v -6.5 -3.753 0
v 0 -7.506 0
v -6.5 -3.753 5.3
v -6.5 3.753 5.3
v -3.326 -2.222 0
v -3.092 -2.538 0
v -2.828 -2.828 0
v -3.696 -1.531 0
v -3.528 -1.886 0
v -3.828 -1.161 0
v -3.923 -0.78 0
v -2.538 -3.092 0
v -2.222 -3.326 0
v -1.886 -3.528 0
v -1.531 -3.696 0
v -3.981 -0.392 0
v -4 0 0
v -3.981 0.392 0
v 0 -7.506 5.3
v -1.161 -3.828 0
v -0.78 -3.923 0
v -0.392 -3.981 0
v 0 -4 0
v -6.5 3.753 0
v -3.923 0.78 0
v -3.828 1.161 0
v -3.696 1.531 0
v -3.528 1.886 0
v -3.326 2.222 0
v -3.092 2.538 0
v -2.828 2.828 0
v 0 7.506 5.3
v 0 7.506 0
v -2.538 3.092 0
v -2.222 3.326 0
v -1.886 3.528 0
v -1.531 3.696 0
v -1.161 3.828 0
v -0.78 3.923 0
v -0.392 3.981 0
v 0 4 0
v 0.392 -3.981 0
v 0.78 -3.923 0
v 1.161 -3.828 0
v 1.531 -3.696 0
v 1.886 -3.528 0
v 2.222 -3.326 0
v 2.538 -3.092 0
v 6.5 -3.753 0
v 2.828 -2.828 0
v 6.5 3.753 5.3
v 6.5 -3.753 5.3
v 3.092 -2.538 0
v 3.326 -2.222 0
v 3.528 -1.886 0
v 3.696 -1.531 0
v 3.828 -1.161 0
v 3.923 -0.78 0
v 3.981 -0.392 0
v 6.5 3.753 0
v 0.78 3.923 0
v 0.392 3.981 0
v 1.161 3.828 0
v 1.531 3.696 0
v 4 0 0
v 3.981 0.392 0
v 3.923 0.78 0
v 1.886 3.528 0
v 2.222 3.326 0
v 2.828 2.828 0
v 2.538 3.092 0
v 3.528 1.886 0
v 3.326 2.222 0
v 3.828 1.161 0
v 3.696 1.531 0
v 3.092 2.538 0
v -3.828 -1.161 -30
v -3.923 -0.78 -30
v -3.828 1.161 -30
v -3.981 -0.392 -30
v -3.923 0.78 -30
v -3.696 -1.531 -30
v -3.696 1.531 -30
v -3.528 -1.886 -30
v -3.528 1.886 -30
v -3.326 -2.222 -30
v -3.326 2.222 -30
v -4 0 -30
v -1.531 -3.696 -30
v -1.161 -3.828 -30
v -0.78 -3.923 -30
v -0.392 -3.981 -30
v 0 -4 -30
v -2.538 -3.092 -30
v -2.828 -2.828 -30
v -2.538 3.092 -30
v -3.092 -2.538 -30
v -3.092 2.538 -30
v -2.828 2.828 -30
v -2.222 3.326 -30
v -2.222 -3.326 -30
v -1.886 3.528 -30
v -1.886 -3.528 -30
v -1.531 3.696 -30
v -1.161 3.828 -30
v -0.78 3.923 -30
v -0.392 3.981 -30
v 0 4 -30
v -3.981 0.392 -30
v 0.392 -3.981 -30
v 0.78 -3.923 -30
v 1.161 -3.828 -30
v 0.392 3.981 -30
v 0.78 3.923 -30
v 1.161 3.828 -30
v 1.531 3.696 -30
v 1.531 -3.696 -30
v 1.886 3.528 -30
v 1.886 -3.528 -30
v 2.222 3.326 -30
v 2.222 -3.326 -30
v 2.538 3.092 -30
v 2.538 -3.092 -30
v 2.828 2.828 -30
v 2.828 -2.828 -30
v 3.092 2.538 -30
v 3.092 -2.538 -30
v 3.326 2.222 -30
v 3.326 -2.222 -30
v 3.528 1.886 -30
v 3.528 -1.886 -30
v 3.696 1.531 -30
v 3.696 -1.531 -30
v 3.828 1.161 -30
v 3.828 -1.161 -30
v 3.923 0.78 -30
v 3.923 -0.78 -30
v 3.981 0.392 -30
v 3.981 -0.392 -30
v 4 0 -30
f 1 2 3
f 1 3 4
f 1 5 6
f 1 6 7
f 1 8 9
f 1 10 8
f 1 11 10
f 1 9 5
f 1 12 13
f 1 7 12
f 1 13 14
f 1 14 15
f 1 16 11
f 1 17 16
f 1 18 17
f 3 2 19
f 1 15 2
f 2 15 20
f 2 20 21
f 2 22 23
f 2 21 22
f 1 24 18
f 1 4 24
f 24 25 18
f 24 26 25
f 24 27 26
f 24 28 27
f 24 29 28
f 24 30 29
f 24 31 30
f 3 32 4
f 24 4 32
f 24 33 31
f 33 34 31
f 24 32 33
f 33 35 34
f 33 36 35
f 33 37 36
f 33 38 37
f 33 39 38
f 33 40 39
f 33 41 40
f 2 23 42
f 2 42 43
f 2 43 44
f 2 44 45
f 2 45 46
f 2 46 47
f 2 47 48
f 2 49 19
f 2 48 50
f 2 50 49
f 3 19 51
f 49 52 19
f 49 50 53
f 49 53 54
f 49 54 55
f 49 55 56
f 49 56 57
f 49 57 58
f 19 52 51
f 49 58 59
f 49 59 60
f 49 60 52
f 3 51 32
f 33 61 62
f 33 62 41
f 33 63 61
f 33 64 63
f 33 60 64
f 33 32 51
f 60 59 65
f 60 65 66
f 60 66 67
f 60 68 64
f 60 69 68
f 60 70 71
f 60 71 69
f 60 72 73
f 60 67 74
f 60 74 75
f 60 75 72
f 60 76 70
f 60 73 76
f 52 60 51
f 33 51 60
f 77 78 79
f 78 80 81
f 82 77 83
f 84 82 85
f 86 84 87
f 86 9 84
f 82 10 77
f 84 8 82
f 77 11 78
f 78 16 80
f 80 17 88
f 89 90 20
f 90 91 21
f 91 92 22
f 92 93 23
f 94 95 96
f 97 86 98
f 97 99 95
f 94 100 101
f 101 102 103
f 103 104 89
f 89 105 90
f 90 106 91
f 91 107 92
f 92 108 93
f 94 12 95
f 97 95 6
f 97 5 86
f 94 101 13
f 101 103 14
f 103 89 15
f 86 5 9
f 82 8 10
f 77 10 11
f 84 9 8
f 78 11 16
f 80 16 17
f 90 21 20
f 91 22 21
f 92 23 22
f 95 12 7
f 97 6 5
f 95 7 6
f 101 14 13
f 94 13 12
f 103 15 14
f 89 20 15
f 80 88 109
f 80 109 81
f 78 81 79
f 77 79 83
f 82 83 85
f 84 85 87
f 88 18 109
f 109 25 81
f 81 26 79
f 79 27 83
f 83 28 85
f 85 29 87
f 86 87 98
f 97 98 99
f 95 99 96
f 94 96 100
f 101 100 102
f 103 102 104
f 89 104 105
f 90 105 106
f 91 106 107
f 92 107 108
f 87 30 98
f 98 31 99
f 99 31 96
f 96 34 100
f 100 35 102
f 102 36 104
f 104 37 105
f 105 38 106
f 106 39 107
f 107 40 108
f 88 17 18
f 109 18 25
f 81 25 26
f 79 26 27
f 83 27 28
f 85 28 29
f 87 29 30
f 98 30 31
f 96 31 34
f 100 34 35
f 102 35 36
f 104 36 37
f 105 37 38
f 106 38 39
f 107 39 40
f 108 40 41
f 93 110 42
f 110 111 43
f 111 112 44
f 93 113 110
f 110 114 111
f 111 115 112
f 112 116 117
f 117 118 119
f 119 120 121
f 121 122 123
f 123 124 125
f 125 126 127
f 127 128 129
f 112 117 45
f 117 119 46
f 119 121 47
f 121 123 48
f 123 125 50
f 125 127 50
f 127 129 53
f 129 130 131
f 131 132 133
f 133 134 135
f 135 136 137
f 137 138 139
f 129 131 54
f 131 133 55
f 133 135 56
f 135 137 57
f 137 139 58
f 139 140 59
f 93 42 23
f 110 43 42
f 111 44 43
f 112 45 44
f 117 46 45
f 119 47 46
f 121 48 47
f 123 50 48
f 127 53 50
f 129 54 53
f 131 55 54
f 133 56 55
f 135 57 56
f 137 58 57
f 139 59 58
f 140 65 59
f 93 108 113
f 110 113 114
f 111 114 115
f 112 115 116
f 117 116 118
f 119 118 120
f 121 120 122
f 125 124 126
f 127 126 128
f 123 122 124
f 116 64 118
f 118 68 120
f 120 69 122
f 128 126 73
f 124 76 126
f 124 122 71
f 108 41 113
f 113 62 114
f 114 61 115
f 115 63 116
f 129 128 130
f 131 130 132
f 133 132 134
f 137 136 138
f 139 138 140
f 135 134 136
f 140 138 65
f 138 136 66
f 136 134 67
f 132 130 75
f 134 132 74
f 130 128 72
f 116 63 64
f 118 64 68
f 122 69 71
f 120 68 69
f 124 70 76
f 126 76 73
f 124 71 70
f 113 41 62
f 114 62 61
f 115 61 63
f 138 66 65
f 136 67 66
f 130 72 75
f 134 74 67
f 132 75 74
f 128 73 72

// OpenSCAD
// M8 Hex Bolt (threadless)

// Parameters
across_flats = 13;      // distance across flats of hex head [mm]
head_height  = 5.3;     // height of hex head [mm]
shank_dia    = 8;       // shank diameter [mm]
shank_len    = 30;      // shank length [mm]

// Derived value
head_radius = across_flats / (2 * cos(30));  // circumscribed radius for hexagon

union() {
    // Hexagonal head: bottom at z = 0, extending in +Z
    rotate([0,0,30])                       // align a flat horizontally (optional)
        cylinder(h = head_height,
                 r = head_radius,
                 $fn = 6);

    // Cylindrical shank: starts at z = 0, extends in –Z
    translate([0,0,-shank_len])
        cylinder(h = shank_len,
                 r = shank_dia / 2,
                 $fn = 64);
}
